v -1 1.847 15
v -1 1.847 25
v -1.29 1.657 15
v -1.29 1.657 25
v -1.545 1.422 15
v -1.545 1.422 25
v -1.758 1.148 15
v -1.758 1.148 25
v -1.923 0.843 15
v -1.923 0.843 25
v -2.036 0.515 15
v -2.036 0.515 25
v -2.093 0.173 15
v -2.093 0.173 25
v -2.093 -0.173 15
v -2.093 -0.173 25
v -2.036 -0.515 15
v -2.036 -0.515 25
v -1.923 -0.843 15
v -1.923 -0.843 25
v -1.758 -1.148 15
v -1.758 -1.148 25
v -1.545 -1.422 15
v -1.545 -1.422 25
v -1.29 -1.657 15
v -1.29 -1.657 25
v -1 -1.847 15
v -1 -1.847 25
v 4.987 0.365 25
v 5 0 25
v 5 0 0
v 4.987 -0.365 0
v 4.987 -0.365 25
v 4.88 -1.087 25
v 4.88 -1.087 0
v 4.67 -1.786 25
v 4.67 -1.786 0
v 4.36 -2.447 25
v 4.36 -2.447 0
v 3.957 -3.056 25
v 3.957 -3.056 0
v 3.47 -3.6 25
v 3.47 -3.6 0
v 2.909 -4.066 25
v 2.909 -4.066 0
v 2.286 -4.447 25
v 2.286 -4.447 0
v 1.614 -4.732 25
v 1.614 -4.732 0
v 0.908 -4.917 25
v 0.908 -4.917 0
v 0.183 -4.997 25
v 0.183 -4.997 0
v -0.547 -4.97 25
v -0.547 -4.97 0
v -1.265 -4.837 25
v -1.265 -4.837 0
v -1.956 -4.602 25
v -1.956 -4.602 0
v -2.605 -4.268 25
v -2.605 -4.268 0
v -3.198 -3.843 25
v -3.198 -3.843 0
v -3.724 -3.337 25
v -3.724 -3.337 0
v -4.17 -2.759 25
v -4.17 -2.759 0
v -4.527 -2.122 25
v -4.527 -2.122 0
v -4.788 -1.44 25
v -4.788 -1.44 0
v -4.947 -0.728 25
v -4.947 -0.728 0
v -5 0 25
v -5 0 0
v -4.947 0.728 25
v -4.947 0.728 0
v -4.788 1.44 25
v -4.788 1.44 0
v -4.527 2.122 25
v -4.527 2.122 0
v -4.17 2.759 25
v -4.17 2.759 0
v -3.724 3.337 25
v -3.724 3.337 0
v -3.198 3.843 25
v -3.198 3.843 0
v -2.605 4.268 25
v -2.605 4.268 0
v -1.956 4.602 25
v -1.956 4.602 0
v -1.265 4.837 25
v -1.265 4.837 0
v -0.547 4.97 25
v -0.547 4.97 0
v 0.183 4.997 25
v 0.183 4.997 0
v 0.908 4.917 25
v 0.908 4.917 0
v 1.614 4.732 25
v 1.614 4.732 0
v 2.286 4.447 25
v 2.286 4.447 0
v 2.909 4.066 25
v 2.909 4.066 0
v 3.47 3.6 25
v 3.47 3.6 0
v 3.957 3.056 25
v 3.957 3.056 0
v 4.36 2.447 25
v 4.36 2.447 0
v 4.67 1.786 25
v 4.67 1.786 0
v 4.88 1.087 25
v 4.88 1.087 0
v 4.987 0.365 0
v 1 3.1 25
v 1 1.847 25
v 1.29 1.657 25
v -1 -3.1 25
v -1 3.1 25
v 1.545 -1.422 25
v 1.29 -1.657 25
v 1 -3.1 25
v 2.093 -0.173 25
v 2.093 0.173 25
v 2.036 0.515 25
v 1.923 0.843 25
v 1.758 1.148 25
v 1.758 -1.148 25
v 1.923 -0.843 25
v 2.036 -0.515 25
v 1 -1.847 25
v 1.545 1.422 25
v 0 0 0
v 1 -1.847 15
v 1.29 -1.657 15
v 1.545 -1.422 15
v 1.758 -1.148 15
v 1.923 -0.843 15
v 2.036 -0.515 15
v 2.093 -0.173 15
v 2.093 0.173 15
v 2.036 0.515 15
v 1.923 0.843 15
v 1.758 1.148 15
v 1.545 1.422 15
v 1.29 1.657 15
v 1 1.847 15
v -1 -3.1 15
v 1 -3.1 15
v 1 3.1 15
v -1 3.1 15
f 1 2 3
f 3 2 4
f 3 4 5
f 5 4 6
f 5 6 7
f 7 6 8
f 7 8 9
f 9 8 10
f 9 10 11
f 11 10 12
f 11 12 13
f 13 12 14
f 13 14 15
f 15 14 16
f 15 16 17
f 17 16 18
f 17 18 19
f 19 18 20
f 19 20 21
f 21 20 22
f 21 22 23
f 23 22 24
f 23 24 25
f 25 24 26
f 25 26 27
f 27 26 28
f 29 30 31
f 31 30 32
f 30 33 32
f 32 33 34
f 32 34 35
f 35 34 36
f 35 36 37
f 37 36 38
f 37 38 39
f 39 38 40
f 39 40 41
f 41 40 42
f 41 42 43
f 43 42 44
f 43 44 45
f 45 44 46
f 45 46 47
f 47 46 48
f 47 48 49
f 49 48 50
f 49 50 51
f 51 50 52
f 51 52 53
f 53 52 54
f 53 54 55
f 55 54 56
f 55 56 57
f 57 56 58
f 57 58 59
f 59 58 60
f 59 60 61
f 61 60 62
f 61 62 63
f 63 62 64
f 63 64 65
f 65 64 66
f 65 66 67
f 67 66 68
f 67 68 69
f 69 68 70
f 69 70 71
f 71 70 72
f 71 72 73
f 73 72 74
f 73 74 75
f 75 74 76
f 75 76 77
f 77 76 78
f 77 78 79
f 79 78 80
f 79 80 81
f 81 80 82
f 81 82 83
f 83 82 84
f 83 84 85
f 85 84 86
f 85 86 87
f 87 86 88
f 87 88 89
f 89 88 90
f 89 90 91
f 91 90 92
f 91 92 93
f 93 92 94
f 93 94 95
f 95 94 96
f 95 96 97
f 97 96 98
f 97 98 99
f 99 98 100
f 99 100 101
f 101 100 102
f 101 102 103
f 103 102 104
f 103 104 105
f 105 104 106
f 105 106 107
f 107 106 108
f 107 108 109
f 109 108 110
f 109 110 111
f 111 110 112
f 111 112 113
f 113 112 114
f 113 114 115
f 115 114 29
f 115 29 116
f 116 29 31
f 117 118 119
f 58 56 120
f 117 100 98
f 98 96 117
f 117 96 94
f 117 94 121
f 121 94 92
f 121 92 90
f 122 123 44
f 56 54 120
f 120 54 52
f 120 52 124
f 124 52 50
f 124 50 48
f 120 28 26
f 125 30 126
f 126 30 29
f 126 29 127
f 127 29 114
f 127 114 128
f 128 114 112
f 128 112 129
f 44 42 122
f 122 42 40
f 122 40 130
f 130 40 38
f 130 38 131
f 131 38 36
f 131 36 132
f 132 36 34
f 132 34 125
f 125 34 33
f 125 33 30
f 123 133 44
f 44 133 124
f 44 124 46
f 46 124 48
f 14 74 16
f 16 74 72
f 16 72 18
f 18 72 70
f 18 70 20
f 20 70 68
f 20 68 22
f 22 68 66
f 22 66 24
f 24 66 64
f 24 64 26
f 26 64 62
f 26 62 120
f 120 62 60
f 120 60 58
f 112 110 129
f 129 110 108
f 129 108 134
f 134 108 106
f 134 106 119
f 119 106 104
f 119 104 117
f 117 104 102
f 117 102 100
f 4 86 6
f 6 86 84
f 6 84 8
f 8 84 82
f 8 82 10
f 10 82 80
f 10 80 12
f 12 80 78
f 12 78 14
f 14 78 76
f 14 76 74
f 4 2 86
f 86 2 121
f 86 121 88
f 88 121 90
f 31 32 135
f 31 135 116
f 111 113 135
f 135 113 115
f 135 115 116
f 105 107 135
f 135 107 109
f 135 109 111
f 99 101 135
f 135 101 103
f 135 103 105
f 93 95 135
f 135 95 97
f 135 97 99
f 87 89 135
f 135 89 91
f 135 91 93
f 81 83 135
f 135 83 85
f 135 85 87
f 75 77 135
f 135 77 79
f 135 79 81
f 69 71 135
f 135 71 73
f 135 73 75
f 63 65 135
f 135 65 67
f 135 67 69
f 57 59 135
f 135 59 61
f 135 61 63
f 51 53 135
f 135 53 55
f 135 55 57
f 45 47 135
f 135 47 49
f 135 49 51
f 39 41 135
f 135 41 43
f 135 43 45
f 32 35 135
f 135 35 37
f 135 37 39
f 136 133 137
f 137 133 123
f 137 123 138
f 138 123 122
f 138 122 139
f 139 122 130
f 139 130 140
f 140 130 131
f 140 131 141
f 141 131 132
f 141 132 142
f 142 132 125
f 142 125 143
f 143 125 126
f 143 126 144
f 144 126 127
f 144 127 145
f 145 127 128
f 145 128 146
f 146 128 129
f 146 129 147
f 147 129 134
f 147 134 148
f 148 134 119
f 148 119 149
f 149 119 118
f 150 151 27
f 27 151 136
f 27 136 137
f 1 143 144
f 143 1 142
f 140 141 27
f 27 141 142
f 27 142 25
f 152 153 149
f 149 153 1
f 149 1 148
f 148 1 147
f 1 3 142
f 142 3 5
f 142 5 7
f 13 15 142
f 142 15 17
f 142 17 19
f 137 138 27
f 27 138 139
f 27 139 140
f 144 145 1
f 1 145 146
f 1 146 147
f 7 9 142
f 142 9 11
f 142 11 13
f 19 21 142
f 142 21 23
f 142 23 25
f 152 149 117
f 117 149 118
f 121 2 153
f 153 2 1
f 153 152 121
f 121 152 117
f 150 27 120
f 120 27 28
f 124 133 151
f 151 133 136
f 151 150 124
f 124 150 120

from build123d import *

# Parameters (mm, degrees)
SKETCH1_R           = 5
BOSS_EXTRUDE1_DEPTH = 25
SKETCH2_R           = 2.1
CUT_EXTRUDE1_DEPTH  = 10
SKETCH3_W           = 2
SKETCH3_H           = 6.2
CUT_EXTRUDE2_DEPTH  = 10


with BuildPart() as part:
    # Sketch1 → Boss-Extrude1 (new body)
    with BuildSketch(Plane.XY):
        Circle(SKETCH1_R)
    extrude(amount=BOSS_EXTRUDE1_DEPTH)

    # Sketch2 → Cut-Extrude1 (cut)
    with BuildSketch(Plane.XY.offset(25)):
        Circle(SKETCH2_R)
    extrude(amount=-CUT_EXTRUDE1_DEPTH, mode=Mode.SUBTRACT)

    # Sketch3 → Cut-Extrude2 (cut)
    with BuildSketch(Plane.XY.offset(25)):
        Rectangle(SKETCH3_W, SKETCH3_H)
    extrude(amount=-CUT_EXTRUDE2_DEPTH, mode=Mode.SUBTRACT)


solid = part.part
